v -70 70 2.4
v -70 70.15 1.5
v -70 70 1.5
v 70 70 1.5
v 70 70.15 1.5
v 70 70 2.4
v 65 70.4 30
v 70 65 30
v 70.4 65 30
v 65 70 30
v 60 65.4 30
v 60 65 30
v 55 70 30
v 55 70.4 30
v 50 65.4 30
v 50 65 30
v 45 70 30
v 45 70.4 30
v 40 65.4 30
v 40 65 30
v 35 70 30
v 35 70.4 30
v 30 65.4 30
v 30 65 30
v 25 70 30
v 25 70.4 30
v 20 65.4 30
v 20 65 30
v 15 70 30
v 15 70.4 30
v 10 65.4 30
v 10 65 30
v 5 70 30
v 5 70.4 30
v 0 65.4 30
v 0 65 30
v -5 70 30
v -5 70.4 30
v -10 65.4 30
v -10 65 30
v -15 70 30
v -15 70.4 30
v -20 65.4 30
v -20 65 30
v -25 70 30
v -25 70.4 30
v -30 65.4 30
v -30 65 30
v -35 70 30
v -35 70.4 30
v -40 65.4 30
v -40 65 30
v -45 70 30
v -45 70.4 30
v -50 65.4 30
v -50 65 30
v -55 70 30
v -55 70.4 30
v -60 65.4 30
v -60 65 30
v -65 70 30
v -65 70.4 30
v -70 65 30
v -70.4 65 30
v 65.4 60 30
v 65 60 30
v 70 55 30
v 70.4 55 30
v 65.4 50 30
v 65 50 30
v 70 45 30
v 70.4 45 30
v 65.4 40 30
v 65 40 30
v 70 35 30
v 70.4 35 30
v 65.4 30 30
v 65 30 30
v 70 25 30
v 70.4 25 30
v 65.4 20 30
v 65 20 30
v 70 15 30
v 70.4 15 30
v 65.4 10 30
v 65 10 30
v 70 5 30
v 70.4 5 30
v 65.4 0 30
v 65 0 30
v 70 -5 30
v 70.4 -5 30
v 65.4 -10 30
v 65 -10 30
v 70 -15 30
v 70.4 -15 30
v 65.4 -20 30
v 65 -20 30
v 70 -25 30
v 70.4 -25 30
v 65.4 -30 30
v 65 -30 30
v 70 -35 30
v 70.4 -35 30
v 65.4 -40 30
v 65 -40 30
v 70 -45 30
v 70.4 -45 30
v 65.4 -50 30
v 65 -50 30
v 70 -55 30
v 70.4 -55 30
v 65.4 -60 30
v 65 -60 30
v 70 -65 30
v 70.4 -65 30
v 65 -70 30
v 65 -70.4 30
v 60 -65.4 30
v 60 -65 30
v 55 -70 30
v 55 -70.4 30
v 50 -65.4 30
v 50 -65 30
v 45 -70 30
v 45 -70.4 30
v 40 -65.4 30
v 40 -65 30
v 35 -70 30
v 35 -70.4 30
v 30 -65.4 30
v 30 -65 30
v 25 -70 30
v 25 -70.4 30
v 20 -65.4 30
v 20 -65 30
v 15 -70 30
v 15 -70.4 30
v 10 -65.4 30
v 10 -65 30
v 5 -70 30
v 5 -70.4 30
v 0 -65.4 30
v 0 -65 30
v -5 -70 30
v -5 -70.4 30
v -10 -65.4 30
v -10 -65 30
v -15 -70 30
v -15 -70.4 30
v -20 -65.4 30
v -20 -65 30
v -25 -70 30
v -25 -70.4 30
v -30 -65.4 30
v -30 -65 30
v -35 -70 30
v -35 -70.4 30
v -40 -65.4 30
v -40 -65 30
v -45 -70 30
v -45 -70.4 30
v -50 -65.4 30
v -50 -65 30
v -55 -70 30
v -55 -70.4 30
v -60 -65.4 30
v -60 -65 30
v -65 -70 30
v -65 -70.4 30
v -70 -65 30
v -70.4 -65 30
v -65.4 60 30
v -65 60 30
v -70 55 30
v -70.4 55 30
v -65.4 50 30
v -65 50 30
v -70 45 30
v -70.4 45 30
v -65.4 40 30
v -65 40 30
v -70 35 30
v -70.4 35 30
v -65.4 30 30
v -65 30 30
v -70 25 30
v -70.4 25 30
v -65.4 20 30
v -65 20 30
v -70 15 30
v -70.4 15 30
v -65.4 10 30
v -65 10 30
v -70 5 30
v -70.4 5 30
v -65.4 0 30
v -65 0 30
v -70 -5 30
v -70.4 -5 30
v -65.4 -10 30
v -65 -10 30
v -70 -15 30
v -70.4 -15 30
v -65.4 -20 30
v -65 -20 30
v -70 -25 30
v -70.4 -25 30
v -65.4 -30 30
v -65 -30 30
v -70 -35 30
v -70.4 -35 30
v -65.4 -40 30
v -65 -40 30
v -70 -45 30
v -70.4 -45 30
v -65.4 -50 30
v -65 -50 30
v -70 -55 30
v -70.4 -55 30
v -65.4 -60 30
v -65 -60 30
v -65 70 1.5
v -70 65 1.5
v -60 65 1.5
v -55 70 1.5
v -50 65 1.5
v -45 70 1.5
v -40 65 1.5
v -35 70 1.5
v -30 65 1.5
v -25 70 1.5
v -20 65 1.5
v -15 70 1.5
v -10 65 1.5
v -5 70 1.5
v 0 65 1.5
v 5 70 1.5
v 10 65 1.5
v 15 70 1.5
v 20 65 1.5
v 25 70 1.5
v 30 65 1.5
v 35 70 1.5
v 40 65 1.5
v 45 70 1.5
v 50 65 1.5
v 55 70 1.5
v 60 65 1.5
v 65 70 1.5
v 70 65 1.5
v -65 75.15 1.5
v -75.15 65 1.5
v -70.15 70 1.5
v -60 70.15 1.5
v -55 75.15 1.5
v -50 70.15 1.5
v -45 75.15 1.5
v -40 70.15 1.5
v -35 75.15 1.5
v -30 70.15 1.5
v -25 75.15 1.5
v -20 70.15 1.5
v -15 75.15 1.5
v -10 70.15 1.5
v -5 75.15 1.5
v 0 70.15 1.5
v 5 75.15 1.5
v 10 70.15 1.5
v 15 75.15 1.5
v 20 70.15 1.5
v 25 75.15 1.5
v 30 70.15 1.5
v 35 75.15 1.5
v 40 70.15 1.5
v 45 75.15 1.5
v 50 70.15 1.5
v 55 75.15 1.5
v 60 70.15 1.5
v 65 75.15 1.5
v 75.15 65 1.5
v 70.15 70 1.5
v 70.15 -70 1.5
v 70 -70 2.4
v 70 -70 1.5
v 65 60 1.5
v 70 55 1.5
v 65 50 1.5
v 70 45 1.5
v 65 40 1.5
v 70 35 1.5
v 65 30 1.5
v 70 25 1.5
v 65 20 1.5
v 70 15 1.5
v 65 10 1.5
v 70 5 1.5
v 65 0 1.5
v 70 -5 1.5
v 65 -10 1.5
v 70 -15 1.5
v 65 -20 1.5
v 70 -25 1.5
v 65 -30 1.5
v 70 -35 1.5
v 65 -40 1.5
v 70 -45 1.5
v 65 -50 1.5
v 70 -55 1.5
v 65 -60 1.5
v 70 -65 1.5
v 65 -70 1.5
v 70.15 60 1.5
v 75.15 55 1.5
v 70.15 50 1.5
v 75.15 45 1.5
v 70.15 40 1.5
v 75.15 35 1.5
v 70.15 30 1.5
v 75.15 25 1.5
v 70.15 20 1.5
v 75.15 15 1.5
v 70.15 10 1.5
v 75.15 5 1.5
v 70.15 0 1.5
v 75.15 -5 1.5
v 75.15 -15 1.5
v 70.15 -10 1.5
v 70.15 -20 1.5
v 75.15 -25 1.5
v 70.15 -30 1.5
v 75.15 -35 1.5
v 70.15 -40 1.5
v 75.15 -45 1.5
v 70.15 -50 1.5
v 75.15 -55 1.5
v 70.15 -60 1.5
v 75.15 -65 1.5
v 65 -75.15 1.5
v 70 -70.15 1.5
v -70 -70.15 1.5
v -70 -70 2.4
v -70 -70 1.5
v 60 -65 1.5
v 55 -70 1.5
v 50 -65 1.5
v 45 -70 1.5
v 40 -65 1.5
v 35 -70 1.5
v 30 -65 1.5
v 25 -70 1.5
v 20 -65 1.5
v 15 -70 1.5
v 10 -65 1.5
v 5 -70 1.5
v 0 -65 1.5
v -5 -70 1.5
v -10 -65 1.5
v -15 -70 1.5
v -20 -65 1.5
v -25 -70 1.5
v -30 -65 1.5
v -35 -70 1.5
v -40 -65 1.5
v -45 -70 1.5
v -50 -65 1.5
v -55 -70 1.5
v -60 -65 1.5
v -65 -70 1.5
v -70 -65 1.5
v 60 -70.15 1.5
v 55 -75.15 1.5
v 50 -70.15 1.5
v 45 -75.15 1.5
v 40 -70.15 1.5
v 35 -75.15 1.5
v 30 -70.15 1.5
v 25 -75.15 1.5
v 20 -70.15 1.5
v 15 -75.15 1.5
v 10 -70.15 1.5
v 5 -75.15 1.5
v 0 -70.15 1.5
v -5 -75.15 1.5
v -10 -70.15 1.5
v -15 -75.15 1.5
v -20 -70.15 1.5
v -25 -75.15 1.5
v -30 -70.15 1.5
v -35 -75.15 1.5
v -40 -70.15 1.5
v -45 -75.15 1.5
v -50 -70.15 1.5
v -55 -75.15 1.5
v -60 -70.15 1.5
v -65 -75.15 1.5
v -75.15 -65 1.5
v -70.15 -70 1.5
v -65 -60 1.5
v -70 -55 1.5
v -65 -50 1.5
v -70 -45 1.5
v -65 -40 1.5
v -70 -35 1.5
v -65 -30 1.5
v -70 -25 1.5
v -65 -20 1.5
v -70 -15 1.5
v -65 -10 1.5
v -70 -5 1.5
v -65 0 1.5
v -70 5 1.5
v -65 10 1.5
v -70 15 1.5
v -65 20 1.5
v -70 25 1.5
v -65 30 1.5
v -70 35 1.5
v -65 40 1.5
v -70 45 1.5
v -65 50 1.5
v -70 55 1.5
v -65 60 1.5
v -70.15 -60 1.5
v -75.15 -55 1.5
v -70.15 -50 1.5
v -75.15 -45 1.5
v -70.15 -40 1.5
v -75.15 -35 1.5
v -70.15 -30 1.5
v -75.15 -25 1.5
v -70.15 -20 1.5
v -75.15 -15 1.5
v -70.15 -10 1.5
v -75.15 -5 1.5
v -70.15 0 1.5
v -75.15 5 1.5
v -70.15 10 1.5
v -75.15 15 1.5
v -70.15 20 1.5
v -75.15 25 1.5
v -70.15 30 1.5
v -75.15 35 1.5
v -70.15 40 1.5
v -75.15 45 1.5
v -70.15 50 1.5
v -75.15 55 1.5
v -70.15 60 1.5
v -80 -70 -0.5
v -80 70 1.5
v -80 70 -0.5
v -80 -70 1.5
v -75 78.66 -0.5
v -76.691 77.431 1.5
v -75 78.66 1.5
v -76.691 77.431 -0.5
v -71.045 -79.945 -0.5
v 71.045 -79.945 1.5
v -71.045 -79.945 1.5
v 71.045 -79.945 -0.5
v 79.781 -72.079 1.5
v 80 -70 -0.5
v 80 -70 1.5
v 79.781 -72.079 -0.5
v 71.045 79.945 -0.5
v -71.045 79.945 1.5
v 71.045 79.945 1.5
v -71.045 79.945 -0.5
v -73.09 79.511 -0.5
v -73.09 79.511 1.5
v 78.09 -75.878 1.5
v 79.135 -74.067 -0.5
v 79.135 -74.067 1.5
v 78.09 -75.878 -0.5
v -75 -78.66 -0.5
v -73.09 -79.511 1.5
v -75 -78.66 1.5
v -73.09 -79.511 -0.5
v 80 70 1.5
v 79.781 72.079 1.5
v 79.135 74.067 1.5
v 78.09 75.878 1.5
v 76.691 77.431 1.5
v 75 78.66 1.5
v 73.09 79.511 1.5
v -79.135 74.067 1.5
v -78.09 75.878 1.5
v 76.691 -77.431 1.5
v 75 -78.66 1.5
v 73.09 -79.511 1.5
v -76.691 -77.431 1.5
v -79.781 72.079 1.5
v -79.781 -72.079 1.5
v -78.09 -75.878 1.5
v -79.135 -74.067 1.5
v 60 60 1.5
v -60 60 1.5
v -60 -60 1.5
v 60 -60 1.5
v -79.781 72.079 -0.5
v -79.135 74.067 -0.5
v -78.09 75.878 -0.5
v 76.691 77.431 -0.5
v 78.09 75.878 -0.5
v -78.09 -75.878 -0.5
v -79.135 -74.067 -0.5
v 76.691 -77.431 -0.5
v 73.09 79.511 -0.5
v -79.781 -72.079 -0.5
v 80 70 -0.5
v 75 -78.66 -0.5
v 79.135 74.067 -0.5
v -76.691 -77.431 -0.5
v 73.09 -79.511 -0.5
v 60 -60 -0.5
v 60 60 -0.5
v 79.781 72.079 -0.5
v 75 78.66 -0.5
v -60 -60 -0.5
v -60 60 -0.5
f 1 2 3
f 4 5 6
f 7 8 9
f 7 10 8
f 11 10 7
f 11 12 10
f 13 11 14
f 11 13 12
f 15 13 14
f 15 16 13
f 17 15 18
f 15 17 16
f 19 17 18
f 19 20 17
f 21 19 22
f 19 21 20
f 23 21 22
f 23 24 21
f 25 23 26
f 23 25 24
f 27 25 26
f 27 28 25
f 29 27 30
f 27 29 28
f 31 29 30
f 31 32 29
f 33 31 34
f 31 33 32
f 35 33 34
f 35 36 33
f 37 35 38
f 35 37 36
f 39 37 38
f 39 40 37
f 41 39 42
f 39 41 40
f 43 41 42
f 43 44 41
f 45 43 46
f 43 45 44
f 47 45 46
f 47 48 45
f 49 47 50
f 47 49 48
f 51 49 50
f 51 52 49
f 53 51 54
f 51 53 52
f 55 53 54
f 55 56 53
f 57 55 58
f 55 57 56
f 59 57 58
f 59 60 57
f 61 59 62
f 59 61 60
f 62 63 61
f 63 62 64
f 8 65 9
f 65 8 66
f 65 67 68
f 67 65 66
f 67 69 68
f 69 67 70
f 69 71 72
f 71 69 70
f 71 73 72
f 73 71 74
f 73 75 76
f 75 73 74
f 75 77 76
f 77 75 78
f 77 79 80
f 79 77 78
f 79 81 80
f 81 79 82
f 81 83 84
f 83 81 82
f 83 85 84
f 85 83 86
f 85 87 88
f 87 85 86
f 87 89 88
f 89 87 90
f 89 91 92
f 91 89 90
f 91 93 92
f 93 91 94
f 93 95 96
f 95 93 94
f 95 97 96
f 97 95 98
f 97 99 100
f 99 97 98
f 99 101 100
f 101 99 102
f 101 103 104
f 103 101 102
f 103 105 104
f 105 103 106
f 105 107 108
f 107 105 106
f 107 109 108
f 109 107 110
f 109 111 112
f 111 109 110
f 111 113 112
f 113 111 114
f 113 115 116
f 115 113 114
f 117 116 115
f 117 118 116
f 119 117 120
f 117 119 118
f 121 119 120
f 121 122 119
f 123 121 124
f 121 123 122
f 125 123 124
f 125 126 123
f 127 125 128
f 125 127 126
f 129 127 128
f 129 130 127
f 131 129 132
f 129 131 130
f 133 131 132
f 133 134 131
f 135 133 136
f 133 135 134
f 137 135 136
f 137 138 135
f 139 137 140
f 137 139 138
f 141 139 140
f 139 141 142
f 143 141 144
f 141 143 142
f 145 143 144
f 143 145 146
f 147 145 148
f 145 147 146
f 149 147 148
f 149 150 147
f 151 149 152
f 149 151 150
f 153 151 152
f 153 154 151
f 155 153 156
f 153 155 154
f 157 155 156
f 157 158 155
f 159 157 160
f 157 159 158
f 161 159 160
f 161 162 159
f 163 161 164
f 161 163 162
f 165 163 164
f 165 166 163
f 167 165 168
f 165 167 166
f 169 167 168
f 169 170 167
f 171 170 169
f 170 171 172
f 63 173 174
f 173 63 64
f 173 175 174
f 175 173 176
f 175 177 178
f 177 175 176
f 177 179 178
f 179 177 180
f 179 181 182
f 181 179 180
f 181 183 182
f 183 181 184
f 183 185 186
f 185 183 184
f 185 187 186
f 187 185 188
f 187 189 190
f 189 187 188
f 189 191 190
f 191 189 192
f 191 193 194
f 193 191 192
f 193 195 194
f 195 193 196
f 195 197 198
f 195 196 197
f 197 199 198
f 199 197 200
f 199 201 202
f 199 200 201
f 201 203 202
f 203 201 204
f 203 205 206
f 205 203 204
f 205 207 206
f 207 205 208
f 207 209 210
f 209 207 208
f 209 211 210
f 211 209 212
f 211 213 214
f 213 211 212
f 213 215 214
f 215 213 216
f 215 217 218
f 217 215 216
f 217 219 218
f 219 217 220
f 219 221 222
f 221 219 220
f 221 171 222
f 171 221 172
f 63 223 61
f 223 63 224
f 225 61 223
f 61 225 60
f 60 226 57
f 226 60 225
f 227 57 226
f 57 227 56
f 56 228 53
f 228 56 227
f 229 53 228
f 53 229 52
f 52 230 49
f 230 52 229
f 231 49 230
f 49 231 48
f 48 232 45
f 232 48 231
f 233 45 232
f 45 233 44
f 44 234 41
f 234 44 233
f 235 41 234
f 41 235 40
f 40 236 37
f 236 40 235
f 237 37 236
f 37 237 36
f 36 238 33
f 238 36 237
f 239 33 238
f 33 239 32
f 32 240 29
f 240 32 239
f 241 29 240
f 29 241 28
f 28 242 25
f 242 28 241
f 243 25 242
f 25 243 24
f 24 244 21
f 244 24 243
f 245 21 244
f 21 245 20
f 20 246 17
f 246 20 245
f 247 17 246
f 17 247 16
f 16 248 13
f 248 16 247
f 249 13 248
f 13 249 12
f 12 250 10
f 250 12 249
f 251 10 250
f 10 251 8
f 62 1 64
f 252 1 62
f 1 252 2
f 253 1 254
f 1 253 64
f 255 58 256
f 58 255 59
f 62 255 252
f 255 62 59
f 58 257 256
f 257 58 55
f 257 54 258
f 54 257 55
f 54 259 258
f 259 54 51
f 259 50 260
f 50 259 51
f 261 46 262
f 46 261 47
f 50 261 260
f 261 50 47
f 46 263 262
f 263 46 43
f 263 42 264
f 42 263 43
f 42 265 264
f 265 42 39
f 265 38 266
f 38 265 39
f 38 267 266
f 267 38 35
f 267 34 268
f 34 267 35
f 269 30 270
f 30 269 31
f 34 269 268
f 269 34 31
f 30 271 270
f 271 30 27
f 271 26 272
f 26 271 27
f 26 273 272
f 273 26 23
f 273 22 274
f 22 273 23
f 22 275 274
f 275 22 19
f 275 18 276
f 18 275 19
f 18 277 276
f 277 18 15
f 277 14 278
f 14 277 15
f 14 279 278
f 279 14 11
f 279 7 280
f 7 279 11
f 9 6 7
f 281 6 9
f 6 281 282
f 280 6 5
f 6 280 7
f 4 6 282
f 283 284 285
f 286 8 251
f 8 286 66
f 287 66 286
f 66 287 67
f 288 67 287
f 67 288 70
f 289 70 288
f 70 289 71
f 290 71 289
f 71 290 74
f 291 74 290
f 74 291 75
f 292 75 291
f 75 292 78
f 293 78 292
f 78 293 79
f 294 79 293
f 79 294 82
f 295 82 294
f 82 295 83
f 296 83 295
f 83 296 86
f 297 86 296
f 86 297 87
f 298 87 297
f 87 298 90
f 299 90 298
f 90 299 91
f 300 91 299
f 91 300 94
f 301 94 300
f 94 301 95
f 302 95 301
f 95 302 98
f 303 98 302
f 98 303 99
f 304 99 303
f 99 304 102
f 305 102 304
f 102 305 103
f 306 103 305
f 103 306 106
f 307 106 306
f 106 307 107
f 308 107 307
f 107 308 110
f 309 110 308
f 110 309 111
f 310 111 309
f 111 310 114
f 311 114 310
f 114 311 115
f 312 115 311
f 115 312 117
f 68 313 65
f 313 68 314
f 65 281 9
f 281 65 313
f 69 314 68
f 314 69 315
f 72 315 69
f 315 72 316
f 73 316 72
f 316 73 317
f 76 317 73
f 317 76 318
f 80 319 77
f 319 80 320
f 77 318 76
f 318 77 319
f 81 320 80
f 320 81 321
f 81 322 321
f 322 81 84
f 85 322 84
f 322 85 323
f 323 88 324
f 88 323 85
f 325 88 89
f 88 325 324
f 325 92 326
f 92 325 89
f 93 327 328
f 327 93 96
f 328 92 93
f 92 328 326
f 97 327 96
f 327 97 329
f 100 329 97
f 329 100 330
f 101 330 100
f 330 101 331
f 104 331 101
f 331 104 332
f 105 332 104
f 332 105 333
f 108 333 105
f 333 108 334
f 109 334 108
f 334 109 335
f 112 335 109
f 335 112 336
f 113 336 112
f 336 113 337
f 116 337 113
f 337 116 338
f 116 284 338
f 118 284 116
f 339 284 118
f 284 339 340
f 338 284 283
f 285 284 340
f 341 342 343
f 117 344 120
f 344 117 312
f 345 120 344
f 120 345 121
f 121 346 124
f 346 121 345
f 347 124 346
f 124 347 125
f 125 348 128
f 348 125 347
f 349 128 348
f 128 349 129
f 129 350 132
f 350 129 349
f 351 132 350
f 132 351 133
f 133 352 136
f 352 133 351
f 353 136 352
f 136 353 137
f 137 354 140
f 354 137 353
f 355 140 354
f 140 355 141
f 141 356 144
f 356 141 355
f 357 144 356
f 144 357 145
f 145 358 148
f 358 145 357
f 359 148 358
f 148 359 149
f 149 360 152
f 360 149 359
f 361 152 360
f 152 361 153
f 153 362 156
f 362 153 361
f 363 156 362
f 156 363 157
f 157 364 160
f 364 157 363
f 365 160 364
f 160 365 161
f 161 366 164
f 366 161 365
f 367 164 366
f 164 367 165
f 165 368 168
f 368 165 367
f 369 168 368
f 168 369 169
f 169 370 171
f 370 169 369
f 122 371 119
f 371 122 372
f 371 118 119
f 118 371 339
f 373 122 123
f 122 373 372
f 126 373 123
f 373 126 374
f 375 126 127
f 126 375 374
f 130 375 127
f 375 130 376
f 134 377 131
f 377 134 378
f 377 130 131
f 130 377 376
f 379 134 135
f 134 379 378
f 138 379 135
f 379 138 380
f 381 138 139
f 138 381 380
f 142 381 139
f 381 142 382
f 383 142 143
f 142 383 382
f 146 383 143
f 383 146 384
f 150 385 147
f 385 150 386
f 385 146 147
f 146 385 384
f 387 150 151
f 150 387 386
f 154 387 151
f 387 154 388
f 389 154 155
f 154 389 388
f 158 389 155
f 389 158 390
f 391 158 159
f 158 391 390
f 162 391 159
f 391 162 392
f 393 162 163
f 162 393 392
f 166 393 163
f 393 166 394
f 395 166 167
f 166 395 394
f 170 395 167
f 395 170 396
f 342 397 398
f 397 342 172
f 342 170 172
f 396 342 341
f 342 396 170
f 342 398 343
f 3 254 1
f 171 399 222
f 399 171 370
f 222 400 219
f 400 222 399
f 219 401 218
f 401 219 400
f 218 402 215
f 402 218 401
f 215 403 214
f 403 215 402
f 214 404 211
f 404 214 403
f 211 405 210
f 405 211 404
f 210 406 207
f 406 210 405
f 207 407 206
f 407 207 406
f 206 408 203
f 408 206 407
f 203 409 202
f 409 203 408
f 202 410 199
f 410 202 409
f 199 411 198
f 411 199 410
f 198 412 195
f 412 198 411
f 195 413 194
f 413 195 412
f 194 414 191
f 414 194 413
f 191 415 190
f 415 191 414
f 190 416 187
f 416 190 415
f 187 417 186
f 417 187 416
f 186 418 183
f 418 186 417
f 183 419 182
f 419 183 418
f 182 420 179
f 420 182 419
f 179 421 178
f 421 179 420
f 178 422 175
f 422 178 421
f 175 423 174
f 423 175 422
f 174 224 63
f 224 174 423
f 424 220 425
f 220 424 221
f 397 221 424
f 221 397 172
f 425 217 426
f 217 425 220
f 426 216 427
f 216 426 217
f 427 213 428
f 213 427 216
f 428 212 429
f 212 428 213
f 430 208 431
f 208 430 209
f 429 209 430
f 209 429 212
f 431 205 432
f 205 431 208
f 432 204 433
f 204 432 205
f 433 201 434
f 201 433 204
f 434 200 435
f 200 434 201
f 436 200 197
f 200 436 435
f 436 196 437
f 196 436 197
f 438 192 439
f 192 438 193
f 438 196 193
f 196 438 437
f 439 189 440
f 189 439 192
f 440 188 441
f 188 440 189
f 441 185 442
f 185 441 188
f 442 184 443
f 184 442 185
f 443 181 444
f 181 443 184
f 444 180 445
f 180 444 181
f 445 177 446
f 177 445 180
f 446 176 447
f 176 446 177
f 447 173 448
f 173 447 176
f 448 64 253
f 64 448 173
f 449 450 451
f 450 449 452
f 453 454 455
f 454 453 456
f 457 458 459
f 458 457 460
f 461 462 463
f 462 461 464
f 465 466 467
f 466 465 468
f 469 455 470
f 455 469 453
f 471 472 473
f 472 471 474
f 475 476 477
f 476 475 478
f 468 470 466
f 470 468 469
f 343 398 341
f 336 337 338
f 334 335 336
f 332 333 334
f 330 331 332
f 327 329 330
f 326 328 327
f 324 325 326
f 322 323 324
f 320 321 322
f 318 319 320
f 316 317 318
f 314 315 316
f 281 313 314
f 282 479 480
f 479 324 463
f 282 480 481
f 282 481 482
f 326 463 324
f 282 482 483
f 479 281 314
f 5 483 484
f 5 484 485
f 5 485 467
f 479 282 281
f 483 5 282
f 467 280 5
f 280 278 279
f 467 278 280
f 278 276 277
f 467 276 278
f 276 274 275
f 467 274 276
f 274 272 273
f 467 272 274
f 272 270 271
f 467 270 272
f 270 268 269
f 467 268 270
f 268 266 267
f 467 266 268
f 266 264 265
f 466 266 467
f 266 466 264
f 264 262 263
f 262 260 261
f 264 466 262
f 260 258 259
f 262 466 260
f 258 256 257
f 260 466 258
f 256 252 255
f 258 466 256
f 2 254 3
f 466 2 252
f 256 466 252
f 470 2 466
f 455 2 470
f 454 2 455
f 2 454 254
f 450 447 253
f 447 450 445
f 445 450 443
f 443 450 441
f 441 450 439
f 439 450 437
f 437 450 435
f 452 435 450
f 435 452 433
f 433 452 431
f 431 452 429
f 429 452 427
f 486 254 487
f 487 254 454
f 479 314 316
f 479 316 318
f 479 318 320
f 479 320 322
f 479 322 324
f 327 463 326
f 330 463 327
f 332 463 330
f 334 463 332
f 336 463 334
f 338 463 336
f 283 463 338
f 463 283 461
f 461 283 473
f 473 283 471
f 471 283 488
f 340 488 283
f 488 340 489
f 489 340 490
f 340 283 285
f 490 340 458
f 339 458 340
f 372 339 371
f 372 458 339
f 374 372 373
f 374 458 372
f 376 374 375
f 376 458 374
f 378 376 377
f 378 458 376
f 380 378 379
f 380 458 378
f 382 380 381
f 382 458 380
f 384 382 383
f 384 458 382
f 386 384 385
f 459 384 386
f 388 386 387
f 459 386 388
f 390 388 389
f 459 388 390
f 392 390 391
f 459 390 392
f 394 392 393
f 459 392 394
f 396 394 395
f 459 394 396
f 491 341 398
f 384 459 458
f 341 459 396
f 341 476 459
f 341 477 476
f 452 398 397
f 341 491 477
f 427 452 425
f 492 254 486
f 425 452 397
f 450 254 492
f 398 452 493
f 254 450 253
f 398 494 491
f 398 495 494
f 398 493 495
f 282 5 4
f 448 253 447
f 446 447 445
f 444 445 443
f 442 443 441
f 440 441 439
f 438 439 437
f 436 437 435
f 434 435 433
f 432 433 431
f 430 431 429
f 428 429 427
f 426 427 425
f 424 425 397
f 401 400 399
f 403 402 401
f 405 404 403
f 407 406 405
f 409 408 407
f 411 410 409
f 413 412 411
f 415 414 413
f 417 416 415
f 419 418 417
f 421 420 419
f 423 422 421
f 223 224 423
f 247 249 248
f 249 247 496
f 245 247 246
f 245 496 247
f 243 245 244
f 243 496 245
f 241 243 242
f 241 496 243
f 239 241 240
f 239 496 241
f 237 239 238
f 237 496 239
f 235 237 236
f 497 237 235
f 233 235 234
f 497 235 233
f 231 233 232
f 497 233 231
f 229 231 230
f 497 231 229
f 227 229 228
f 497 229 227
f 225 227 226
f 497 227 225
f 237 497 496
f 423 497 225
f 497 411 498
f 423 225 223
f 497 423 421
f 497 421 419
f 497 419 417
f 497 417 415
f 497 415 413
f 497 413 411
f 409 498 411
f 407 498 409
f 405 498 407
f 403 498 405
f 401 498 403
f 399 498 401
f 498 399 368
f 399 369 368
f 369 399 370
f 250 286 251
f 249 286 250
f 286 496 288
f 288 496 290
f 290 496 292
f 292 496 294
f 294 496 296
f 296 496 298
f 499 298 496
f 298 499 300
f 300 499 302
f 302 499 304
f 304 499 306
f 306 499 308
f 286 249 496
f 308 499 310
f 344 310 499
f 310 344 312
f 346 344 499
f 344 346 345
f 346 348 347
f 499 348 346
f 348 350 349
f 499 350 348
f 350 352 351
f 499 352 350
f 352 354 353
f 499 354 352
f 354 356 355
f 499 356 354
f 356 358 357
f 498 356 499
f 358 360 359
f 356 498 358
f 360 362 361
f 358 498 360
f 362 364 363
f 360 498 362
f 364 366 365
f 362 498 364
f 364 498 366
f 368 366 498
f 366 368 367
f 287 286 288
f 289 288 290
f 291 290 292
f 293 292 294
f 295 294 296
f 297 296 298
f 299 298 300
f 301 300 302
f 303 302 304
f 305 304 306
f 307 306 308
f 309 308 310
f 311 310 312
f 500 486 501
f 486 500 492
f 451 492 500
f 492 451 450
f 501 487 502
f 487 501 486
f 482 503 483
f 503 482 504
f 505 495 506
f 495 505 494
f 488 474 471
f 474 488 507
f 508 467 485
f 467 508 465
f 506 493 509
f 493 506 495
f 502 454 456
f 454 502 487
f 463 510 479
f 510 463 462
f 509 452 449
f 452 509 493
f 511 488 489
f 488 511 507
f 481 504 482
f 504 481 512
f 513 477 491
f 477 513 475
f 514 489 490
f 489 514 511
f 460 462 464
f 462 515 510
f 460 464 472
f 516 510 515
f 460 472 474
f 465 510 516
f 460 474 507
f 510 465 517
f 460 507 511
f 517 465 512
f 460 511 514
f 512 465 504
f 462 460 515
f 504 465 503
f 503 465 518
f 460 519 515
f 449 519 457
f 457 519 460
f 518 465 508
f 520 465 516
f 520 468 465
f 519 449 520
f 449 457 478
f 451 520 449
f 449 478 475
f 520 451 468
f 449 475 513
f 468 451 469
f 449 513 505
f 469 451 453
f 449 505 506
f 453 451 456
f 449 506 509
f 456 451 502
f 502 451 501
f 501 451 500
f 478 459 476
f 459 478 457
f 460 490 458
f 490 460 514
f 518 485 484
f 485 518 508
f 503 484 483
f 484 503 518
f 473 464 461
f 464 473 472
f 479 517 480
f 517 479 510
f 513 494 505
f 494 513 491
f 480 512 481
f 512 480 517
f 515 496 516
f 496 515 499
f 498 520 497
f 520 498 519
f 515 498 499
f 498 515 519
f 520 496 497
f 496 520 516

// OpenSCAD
N = 14;
side = 10;
height = 30;
thickness = 0.4;

A = [
      [1, 0, 0, 0],
      [0, 1, -(side/2)/height, 0],
      [0, 0, 1, 0],
      [0, 0, 0, 1]
    ];

module prisma() {
  translate([0, 0, height/2])
    rotate([0, 0, 45])
      cube([side/2*sqrt(2), side/2*sqrt(2), height], center = true);
}

module prisma_line(N) {
  for (i = [1:N]) {
    translate([(i-.5) * side, side/2, 0])
      prisma();
  }
}

module base() {
  translate([0, 0, 0])
  difference() {
    translate([0, -thickness, 0])
      multmatrix(m = A) cube([N*side, side + thickness, height-1]);
    translate([0, side/2, 0])
      cube([N*side, side/2, height-1]);
  }
}

module cutter_side() {
  translate([-N*side/2, -N*side/2, 0])
  difference() {
    base();
    translate([-side/2, -side/2 - thickness, 0])
      multmatrix(m = A)
        prisma_line(N+1);
    prisma_line(N+1);
  }
}

module cutter() {
  union() {
    for (angle = [0, 90, 180, 270]) {
      rotate([0, 0, angle])
        cutter_side();
    }
    difference() {
      translate([0, 0, height-1]) {
        minkowski() {
          cube([(N)*side, (N)*side, 1], center = true);
          cylinder(h = 1, r = side);
        }
      }
      cube([(N-2)*side, (N-2)*side, height*10], center = true);
    }
  }
}

translate([0, 0, height])
  rotate([180, 0, 0])
    cutter();
